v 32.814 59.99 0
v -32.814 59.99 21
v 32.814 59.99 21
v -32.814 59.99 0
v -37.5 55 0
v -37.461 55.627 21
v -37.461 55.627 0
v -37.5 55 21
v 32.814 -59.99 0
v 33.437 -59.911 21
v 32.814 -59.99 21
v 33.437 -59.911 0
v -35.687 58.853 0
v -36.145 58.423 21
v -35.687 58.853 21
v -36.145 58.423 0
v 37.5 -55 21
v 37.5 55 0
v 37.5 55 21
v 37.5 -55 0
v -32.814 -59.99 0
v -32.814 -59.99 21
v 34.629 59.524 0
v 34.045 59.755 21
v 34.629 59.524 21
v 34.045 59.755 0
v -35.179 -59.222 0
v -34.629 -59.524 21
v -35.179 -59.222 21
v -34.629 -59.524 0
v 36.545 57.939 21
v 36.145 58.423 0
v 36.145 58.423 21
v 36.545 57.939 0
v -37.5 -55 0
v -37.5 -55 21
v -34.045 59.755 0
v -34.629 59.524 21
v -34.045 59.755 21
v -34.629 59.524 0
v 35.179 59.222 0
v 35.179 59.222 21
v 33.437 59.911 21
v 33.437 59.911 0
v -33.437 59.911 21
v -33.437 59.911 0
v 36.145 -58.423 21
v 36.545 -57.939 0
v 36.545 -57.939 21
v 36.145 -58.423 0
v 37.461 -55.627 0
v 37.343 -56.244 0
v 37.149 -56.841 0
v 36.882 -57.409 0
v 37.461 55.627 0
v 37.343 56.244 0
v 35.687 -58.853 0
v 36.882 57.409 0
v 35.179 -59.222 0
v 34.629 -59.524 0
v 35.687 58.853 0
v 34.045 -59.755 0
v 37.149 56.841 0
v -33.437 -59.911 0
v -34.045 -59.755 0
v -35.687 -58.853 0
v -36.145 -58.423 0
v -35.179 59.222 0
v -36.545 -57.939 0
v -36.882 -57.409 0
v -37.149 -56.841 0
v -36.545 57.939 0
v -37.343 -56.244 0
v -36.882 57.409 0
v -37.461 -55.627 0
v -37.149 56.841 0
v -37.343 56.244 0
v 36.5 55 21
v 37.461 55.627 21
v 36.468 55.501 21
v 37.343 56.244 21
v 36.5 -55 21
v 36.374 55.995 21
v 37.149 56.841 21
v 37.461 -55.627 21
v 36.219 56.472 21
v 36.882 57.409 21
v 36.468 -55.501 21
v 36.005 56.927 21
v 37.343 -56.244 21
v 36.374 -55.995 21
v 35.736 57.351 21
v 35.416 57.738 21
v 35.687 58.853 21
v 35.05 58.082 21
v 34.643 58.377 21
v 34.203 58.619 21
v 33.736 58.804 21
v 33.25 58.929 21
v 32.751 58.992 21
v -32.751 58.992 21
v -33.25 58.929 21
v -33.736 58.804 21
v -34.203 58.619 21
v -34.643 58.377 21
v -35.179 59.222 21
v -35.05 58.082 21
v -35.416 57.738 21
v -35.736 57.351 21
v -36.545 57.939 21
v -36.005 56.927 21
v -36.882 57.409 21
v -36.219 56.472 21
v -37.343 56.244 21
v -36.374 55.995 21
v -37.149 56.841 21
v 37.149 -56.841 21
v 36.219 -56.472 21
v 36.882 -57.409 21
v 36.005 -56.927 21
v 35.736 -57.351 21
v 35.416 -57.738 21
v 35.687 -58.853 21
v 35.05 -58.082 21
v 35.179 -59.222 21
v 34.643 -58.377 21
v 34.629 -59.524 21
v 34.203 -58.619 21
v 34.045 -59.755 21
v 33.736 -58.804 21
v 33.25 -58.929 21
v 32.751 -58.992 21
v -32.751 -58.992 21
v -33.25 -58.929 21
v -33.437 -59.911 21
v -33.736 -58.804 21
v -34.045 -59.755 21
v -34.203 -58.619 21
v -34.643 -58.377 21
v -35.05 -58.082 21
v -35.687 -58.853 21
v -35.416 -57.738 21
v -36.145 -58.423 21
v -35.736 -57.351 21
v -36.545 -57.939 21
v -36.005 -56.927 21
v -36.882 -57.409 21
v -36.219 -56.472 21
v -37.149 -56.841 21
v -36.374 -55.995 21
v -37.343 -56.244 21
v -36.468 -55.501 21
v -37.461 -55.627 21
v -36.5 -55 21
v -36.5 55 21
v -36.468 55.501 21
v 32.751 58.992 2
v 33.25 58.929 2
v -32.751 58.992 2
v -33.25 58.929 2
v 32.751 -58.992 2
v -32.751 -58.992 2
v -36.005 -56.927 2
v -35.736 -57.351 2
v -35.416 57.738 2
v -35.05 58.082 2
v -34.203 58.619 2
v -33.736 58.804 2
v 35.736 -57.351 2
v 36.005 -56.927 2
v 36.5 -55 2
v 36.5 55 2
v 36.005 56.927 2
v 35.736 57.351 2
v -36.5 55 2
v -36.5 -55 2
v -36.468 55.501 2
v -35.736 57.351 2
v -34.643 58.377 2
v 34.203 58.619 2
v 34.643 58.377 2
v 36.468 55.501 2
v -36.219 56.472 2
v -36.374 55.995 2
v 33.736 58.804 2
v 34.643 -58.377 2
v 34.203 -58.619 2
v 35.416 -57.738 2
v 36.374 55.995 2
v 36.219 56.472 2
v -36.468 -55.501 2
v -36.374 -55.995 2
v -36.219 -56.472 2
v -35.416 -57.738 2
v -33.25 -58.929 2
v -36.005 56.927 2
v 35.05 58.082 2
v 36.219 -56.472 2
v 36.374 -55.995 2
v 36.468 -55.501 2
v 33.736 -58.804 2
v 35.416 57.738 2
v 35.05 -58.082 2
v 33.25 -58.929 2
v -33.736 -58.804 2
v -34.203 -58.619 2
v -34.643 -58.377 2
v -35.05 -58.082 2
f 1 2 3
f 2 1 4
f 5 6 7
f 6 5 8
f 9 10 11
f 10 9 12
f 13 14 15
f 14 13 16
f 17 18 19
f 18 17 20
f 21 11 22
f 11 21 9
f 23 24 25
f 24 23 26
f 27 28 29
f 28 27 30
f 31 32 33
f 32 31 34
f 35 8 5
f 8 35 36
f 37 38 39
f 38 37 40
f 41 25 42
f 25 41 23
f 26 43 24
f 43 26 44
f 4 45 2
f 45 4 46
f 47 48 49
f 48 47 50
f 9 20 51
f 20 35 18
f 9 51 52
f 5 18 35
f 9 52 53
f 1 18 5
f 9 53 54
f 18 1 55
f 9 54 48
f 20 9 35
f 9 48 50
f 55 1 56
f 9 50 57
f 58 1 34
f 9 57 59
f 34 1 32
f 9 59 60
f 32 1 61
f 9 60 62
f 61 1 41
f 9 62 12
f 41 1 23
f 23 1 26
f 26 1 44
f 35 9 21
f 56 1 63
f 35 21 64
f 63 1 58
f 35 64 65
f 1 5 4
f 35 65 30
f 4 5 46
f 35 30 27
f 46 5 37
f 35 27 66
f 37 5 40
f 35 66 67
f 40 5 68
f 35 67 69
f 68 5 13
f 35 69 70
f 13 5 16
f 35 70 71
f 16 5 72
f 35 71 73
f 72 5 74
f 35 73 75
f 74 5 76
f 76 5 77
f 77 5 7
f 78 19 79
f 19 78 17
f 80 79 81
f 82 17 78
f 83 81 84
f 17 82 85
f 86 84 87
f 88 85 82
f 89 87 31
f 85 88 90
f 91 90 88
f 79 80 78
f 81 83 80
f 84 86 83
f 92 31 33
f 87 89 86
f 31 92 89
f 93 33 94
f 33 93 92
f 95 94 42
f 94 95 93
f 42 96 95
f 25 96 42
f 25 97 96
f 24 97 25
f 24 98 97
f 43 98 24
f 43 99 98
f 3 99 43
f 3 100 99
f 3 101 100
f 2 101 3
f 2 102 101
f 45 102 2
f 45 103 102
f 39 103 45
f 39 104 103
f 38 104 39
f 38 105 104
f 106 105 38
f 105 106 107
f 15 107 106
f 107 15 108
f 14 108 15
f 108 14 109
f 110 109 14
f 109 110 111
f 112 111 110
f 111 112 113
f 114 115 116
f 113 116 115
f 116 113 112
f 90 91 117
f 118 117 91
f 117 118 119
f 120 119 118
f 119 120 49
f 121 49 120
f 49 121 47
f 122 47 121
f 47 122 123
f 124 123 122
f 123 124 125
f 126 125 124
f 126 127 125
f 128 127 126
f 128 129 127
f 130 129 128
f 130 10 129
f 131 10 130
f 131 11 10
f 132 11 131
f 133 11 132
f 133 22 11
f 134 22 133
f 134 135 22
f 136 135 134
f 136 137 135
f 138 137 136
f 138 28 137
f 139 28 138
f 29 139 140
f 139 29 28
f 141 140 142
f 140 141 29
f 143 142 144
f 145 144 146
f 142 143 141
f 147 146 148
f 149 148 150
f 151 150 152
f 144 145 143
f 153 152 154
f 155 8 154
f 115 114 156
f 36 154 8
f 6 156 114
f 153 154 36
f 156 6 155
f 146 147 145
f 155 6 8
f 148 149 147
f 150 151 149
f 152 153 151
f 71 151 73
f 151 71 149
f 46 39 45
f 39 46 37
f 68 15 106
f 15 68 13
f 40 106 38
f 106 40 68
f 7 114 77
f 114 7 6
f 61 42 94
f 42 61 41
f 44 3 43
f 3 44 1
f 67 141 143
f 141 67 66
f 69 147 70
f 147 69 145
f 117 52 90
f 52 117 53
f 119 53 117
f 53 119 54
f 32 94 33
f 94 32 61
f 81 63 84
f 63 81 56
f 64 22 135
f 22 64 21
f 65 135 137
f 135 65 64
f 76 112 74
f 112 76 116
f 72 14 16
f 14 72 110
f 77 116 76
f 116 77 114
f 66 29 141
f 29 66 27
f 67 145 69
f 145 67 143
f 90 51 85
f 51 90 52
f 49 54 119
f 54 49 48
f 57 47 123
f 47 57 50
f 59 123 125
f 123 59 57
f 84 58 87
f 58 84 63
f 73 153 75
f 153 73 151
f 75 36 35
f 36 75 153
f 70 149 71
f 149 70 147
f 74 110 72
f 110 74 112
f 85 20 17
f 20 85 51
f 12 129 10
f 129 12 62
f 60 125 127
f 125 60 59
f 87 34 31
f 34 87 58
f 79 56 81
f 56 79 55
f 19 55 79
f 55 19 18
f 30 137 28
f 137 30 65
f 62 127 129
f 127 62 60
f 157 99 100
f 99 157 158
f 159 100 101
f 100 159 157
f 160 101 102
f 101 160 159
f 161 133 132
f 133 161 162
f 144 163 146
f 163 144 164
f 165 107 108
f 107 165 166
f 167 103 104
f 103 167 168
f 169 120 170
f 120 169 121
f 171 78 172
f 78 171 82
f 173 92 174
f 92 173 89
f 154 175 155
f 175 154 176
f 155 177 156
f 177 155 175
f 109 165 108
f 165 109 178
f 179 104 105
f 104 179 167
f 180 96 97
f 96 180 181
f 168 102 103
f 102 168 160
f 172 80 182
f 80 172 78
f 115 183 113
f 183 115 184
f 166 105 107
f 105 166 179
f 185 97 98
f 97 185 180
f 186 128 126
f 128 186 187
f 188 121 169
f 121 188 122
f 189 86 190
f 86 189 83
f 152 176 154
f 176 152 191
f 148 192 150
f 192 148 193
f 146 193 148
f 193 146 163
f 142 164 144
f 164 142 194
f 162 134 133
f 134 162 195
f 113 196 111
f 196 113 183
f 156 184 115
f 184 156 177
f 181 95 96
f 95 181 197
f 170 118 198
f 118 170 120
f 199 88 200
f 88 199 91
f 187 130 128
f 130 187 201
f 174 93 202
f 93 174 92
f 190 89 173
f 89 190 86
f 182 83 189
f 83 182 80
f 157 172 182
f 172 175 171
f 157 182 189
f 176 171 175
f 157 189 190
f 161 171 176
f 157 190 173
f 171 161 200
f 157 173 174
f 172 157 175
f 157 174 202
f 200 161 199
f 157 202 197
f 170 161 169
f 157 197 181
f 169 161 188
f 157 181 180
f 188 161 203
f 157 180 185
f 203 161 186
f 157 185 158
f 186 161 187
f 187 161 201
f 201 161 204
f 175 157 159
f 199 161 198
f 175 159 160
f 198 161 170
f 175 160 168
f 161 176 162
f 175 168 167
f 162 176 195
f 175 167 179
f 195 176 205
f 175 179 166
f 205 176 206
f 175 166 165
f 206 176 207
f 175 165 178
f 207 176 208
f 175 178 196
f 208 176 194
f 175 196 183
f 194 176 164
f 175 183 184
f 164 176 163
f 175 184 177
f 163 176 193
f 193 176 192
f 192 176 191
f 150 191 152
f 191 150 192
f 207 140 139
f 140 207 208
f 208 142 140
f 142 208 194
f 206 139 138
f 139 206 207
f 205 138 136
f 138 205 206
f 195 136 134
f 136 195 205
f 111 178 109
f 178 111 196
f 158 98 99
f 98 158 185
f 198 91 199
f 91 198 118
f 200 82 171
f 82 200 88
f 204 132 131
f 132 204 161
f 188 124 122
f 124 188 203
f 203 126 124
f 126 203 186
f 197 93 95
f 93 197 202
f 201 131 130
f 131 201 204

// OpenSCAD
$fn = 50;


difference() {
	union() {
		hull() {
			translate(v = [-32.5000000000, 55.0000000000, 0]) {
				cylinder(h = 21, r = 5);
			}
			translate(v = [32.5000000000, 55.0000000000, 0]) {
				cylinder(h = 21, r = 5);
			}
			translate(v = [-32.5000000000, -55.0000000000, 0]) {
				cylinder(h = 21, r = 5);
			}
			translate(v = [32.5000000000, -55.0000000000, 0]) {
				cylinder(h = 21, r = 5);
			}
		}
	}
	union() {
		translate(v = [0, 0, 2]) {
			hull() {
				translate(v = [-32.5000000000, 55.0000000000, 0]) {
					cylinder(h = 19, r = 4);
				}
				translate(v = [32.5000000000, 55.0000000000, 0]) {
					cylinder(h = 19, r = 4);
				}
				translate(v = [-32.5000000000, -55.0000000000, 0]) {
					cylinder(h = 19, r = 4);
				}
				translate(v = [32.5000000000, -55.0000000000, 0]) {
					cylinder(h = 19, r = 4);
				}
			}
		}
	}
}
